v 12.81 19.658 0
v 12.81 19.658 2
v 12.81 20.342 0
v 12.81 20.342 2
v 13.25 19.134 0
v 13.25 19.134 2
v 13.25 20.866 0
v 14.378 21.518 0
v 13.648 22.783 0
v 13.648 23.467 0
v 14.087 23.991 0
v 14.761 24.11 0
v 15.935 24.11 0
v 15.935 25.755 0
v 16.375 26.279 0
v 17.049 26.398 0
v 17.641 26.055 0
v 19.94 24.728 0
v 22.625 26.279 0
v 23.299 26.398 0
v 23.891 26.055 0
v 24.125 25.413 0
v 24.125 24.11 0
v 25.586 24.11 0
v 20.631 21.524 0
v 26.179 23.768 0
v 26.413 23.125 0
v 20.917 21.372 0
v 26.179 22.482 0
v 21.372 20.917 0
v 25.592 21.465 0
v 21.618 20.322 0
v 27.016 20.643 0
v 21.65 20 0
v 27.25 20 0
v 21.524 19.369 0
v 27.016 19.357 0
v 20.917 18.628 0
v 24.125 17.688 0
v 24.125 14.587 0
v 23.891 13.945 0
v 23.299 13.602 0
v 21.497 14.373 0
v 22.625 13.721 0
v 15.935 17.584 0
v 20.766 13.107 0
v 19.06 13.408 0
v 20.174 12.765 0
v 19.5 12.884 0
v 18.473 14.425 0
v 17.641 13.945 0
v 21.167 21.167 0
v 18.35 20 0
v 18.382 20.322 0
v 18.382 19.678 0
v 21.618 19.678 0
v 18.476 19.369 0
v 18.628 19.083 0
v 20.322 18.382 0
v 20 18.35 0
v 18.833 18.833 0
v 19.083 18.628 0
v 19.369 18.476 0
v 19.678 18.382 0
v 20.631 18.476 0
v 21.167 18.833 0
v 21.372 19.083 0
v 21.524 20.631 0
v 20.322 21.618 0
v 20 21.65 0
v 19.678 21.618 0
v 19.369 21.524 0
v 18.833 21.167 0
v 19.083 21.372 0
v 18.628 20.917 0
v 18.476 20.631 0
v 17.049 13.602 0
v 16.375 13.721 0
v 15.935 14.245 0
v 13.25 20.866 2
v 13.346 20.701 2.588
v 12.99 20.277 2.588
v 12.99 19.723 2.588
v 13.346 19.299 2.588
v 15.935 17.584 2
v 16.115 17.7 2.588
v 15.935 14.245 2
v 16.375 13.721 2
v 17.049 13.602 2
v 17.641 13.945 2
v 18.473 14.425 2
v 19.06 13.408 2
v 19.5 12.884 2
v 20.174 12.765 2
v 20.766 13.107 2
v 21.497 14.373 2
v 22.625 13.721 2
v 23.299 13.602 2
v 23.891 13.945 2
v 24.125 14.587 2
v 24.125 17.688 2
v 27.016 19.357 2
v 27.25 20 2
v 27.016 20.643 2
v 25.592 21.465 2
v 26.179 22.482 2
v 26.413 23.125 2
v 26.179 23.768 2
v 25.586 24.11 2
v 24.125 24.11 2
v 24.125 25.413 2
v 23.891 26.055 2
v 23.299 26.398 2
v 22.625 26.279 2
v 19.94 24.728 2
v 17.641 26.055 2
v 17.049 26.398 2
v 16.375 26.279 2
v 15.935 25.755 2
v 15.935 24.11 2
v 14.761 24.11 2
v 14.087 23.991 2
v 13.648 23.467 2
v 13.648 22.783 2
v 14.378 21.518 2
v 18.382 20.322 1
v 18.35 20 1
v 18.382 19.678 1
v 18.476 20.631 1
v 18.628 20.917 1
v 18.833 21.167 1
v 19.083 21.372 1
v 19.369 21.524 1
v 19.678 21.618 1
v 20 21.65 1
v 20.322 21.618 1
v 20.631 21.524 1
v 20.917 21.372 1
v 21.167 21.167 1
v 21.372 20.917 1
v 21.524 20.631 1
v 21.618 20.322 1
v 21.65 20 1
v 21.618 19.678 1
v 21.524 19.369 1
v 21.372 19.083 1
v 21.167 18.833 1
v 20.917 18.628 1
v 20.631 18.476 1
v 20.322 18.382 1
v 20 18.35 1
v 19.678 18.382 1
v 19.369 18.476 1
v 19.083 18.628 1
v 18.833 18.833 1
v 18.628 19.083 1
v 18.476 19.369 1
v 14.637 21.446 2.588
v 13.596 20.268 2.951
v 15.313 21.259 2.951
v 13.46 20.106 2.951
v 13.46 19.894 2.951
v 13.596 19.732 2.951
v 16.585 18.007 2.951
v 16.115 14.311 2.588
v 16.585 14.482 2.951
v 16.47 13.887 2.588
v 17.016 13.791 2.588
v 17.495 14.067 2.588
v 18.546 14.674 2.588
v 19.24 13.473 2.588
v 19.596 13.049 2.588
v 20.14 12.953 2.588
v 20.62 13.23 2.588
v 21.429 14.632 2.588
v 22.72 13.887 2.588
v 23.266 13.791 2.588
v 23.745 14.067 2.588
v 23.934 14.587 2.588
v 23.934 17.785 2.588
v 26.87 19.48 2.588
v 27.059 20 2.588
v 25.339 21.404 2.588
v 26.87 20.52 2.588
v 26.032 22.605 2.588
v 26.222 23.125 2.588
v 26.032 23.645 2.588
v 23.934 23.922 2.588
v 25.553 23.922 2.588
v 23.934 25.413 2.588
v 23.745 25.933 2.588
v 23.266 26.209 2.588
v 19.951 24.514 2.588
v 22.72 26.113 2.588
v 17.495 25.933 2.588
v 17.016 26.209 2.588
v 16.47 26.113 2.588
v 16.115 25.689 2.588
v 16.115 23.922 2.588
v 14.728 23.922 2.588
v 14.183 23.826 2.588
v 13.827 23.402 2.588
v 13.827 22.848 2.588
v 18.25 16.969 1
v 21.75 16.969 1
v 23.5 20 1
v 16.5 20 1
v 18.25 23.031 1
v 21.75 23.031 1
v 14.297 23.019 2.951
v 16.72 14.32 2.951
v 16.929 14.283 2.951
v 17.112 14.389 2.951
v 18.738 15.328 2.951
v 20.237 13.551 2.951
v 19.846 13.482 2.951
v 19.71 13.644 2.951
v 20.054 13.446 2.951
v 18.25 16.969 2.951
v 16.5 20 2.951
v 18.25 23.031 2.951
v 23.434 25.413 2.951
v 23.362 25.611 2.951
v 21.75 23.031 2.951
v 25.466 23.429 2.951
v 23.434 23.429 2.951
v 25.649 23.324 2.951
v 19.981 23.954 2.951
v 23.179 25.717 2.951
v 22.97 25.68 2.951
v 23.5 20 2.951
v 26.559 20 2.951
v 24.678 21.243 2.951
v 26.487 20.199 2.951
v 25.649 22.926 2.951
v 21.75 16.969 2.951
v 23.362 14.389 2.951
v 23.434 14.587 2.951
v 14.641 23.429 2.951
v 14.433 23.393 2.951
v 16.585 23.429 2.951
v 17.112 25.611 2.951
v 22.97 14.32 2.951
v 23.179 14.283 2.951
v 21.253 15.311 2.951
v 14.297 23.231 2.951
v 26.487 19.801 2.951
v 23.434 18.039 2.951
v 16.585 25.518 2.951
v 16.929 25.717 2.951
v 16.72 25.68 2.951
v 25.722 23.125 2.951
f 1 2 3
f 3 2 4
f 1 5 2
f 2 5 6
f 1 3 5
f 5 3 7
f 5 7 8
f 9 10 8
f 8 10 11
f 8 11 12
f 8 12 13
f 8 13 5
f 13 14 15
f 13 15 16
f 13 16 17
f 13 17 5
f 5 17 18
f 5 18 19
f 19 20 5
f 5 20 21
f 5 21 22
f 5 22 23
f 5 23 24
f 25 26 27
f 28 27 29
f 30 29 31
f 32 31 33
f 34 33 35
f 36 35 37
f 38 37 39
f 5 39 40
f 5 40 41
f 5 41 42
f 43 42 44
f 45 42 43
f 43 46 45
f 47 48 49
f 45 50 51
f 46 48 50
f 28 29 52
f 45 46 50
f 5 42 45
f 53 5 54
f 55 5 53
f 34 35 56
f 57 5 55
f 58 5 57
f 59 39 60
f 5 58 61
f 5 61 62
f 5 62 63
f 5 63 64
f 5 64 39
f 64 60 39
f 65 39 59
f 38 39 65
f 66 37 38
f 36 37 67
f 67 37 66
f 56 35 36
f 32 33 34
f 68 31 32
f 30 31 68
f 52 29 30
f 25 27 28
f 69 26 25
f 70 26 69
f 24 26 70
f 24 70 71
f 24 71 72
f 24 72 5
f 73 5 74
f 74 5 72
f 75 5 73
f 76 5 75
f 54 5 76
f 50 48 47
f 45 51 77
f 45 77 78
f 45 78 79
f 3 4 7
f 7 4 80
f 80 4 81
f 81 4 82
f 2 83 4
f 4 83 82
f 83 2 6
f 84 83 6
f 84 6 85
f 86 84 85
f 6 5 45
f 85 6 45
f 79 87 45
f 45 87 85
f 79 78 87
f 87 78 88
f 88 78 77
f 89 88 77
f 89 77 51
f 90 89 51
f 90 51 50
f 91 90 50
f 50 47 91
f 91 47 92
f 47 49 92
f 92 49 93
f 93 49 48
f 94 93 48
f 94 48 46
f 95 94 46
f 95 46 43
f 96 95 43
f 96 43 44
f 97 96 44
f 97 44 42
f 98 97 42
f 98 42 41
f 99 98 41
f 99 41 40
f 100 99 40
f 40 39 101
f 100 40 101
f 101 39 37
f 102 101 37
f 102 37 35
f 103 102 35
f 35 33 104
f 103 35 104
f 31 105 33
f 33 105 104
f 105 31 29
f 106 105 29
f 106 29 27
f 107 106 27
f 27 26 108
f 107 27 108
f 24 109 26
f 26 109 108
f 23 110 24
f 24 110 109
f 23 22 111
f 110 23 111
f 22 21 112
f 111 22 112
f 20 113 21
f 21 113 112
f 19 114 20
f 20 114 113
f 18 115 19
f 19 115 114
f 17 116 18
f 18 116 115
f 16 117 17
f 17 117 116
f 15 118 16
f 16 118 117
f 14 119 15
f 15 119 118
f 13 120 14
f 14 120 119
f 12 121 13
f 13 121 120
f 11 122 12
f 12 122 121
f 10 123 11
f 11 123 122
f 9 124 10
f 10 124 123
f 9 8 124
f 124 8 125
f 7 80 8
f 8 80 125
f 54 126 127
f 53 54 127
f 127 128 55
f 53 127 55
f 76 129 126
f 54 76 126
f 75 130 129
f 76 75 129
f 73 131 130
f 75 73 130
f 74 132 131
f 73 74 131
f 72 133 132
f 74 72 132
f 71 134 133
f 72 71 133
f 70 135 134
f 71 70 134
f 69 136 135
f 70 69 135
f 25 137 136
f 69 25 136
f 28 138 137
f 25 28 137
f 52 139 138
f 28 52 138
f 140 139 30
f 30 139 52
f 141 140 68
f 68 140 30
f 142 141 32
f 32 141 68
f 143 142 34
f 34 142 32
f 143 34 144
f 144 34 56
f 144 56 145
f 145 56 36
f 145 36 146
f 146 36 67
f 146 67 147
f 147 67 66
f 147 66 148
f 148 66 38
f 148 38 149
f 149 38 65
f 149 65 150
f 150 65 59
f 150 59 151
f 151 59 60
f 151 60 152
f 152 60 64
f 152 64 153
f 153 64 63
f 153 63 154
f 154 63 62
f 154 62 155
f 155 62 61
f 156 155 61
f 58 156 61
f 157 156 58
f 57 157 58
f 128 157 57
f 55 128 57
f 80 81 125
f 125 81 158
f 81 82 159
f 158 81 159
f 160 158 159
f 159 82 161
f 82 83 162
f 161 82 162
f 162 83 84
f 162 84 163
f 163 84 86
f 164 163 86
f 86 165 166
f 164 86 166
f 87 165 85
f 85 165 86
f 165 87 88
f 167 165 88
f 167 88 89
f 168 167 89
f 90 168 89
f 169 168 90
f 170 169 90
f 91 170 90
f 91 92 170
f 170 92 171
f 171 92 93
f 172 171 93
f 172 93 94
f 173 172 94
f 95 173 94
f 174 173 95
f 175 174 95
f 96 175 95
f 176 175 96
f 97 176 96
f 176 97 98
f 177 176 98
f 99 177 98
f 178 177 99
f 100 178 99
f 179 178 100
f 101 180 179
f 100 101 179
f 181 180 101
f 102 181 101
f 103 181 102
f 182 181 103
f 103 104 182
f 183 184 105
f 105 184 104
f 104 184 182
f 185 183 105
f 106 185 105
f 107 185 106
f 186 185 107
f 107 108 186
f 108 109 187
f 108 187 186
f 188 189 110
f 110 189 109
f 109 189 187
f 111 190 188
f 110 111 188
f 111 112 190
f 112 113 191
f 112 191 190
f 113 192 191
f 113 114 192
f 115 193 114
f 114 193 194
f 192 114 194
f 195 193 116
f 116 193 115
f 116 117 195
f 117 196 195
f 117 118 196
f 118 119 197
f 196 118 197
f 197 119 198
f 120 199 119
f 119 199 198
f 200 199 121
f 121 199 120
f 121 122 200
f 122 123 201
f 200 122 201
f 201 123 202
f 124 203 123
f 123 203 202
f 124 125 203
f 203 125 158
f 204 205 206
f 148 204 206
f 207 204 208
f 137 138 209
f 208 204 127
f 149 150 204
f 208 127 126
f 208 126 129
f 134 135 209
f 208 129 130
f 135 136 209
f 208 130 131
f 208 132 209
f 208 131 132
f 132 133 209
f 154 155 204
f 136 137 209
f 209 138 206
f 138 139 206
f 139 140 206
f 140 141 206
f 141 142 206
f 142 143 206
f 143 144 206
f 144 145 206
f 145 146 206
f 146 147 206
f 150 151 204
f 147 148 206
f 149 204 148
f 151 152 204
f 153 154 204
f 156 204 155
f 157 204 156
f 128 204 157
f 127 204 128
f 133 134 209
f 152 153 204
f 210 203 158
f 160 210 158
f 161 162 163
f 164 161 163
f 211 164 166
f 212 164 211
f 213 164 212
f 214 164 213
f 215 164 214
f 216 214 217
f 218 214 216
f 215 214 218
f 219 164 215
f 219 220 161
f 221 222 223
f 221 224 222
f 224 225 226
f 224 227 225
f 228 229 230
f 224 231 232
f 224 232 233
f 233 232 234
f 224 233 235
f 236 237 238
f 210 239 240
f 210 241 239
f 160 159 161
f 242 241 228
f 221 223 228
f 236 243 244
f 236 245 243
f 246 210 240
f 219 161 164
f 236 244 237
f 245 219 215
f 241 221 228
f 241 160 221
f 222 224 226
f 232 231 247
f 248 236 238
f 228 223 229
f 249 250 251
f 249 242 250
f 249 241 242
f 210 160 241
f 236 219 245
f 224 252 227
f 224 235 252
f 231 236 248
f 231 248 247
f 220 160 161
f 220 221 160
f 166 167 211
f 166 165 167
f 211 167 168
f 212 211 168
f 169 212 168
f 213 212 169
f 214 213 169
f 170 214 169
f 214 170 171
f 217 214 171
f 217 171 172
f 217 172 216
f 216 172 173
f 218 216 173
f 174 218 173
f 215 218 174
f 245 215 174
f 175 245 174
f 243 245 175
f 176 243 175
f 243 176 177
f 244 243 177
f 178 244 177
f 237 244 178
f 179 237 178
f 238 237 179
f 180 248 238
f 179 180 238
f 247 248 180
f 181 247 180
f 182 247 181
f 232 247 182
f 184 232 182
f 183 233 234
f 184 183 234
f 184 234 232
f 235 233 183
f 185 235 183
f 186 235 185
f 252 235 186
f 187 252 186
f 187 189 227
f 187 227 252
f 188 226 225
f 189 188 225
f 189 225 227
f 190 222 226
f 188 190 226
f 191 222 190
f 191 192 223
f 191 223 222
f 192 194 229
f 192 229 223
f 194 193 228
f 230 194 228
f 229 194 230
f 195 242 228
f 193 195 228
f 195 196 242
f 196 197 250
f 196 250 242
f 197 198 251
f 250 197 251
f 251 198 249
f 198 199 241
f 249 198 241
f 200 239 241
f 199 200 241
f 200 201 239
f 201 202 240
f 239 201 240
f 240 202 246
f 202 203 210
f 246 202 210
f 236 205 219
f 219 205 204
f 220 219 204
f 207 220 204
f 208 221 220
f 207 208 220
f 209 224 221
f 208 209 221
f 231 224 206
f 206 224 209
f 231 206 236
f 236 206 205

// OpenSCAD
slop = .25;

m3_dia = 3;
m3_rad = m3_dia/2+slop;

m3_cap_dia = 5.7;
m3_cap_rad = m3_cap_dia/2+slop;
m3_cap_thick = 1.65+slop/2;
m3_cap_hex_rad = (2/cos(30))/2;

m3_nut_dia = 6.5;
m3_nut_rad = m3_nut_dia/2+slop;
m3_nut_thick = 2.4;


lm8uu_dia = 15;
lm8uu_rad = lm8uu_dia/2+slop;
lm8uu_len = 24+slop;

lm8uu_inset = 2;  //inset into frame

wall = 3;
height = 2;
switch = 4;
shaft = 6;

$fn=32;
translate([20,20,0]) rosette();

module rosette(){
	thick = 3;
	rad = 6.25;
	D = 4.5;
	mrad=1;
	difference(){
		minkowski(){
			union(){
				for(i=[0:30:60]) rotate([0,0,i]) cylinder(r=rad, h=thick-mrad, $fn=3);
			}
			intersection(){
				sphere(r=mrad, $fn=9);
				translate([0,0,10]) cube([20,20,20],center=true);
			}
		}

		//shaft
		translate([0,0,-.1]) cylinder(r=m3_rad-.1, h=20);
		translate([0,0,1]) cylinder(r=m3_nut_rad, h=20, $fn=6);
	}
}
